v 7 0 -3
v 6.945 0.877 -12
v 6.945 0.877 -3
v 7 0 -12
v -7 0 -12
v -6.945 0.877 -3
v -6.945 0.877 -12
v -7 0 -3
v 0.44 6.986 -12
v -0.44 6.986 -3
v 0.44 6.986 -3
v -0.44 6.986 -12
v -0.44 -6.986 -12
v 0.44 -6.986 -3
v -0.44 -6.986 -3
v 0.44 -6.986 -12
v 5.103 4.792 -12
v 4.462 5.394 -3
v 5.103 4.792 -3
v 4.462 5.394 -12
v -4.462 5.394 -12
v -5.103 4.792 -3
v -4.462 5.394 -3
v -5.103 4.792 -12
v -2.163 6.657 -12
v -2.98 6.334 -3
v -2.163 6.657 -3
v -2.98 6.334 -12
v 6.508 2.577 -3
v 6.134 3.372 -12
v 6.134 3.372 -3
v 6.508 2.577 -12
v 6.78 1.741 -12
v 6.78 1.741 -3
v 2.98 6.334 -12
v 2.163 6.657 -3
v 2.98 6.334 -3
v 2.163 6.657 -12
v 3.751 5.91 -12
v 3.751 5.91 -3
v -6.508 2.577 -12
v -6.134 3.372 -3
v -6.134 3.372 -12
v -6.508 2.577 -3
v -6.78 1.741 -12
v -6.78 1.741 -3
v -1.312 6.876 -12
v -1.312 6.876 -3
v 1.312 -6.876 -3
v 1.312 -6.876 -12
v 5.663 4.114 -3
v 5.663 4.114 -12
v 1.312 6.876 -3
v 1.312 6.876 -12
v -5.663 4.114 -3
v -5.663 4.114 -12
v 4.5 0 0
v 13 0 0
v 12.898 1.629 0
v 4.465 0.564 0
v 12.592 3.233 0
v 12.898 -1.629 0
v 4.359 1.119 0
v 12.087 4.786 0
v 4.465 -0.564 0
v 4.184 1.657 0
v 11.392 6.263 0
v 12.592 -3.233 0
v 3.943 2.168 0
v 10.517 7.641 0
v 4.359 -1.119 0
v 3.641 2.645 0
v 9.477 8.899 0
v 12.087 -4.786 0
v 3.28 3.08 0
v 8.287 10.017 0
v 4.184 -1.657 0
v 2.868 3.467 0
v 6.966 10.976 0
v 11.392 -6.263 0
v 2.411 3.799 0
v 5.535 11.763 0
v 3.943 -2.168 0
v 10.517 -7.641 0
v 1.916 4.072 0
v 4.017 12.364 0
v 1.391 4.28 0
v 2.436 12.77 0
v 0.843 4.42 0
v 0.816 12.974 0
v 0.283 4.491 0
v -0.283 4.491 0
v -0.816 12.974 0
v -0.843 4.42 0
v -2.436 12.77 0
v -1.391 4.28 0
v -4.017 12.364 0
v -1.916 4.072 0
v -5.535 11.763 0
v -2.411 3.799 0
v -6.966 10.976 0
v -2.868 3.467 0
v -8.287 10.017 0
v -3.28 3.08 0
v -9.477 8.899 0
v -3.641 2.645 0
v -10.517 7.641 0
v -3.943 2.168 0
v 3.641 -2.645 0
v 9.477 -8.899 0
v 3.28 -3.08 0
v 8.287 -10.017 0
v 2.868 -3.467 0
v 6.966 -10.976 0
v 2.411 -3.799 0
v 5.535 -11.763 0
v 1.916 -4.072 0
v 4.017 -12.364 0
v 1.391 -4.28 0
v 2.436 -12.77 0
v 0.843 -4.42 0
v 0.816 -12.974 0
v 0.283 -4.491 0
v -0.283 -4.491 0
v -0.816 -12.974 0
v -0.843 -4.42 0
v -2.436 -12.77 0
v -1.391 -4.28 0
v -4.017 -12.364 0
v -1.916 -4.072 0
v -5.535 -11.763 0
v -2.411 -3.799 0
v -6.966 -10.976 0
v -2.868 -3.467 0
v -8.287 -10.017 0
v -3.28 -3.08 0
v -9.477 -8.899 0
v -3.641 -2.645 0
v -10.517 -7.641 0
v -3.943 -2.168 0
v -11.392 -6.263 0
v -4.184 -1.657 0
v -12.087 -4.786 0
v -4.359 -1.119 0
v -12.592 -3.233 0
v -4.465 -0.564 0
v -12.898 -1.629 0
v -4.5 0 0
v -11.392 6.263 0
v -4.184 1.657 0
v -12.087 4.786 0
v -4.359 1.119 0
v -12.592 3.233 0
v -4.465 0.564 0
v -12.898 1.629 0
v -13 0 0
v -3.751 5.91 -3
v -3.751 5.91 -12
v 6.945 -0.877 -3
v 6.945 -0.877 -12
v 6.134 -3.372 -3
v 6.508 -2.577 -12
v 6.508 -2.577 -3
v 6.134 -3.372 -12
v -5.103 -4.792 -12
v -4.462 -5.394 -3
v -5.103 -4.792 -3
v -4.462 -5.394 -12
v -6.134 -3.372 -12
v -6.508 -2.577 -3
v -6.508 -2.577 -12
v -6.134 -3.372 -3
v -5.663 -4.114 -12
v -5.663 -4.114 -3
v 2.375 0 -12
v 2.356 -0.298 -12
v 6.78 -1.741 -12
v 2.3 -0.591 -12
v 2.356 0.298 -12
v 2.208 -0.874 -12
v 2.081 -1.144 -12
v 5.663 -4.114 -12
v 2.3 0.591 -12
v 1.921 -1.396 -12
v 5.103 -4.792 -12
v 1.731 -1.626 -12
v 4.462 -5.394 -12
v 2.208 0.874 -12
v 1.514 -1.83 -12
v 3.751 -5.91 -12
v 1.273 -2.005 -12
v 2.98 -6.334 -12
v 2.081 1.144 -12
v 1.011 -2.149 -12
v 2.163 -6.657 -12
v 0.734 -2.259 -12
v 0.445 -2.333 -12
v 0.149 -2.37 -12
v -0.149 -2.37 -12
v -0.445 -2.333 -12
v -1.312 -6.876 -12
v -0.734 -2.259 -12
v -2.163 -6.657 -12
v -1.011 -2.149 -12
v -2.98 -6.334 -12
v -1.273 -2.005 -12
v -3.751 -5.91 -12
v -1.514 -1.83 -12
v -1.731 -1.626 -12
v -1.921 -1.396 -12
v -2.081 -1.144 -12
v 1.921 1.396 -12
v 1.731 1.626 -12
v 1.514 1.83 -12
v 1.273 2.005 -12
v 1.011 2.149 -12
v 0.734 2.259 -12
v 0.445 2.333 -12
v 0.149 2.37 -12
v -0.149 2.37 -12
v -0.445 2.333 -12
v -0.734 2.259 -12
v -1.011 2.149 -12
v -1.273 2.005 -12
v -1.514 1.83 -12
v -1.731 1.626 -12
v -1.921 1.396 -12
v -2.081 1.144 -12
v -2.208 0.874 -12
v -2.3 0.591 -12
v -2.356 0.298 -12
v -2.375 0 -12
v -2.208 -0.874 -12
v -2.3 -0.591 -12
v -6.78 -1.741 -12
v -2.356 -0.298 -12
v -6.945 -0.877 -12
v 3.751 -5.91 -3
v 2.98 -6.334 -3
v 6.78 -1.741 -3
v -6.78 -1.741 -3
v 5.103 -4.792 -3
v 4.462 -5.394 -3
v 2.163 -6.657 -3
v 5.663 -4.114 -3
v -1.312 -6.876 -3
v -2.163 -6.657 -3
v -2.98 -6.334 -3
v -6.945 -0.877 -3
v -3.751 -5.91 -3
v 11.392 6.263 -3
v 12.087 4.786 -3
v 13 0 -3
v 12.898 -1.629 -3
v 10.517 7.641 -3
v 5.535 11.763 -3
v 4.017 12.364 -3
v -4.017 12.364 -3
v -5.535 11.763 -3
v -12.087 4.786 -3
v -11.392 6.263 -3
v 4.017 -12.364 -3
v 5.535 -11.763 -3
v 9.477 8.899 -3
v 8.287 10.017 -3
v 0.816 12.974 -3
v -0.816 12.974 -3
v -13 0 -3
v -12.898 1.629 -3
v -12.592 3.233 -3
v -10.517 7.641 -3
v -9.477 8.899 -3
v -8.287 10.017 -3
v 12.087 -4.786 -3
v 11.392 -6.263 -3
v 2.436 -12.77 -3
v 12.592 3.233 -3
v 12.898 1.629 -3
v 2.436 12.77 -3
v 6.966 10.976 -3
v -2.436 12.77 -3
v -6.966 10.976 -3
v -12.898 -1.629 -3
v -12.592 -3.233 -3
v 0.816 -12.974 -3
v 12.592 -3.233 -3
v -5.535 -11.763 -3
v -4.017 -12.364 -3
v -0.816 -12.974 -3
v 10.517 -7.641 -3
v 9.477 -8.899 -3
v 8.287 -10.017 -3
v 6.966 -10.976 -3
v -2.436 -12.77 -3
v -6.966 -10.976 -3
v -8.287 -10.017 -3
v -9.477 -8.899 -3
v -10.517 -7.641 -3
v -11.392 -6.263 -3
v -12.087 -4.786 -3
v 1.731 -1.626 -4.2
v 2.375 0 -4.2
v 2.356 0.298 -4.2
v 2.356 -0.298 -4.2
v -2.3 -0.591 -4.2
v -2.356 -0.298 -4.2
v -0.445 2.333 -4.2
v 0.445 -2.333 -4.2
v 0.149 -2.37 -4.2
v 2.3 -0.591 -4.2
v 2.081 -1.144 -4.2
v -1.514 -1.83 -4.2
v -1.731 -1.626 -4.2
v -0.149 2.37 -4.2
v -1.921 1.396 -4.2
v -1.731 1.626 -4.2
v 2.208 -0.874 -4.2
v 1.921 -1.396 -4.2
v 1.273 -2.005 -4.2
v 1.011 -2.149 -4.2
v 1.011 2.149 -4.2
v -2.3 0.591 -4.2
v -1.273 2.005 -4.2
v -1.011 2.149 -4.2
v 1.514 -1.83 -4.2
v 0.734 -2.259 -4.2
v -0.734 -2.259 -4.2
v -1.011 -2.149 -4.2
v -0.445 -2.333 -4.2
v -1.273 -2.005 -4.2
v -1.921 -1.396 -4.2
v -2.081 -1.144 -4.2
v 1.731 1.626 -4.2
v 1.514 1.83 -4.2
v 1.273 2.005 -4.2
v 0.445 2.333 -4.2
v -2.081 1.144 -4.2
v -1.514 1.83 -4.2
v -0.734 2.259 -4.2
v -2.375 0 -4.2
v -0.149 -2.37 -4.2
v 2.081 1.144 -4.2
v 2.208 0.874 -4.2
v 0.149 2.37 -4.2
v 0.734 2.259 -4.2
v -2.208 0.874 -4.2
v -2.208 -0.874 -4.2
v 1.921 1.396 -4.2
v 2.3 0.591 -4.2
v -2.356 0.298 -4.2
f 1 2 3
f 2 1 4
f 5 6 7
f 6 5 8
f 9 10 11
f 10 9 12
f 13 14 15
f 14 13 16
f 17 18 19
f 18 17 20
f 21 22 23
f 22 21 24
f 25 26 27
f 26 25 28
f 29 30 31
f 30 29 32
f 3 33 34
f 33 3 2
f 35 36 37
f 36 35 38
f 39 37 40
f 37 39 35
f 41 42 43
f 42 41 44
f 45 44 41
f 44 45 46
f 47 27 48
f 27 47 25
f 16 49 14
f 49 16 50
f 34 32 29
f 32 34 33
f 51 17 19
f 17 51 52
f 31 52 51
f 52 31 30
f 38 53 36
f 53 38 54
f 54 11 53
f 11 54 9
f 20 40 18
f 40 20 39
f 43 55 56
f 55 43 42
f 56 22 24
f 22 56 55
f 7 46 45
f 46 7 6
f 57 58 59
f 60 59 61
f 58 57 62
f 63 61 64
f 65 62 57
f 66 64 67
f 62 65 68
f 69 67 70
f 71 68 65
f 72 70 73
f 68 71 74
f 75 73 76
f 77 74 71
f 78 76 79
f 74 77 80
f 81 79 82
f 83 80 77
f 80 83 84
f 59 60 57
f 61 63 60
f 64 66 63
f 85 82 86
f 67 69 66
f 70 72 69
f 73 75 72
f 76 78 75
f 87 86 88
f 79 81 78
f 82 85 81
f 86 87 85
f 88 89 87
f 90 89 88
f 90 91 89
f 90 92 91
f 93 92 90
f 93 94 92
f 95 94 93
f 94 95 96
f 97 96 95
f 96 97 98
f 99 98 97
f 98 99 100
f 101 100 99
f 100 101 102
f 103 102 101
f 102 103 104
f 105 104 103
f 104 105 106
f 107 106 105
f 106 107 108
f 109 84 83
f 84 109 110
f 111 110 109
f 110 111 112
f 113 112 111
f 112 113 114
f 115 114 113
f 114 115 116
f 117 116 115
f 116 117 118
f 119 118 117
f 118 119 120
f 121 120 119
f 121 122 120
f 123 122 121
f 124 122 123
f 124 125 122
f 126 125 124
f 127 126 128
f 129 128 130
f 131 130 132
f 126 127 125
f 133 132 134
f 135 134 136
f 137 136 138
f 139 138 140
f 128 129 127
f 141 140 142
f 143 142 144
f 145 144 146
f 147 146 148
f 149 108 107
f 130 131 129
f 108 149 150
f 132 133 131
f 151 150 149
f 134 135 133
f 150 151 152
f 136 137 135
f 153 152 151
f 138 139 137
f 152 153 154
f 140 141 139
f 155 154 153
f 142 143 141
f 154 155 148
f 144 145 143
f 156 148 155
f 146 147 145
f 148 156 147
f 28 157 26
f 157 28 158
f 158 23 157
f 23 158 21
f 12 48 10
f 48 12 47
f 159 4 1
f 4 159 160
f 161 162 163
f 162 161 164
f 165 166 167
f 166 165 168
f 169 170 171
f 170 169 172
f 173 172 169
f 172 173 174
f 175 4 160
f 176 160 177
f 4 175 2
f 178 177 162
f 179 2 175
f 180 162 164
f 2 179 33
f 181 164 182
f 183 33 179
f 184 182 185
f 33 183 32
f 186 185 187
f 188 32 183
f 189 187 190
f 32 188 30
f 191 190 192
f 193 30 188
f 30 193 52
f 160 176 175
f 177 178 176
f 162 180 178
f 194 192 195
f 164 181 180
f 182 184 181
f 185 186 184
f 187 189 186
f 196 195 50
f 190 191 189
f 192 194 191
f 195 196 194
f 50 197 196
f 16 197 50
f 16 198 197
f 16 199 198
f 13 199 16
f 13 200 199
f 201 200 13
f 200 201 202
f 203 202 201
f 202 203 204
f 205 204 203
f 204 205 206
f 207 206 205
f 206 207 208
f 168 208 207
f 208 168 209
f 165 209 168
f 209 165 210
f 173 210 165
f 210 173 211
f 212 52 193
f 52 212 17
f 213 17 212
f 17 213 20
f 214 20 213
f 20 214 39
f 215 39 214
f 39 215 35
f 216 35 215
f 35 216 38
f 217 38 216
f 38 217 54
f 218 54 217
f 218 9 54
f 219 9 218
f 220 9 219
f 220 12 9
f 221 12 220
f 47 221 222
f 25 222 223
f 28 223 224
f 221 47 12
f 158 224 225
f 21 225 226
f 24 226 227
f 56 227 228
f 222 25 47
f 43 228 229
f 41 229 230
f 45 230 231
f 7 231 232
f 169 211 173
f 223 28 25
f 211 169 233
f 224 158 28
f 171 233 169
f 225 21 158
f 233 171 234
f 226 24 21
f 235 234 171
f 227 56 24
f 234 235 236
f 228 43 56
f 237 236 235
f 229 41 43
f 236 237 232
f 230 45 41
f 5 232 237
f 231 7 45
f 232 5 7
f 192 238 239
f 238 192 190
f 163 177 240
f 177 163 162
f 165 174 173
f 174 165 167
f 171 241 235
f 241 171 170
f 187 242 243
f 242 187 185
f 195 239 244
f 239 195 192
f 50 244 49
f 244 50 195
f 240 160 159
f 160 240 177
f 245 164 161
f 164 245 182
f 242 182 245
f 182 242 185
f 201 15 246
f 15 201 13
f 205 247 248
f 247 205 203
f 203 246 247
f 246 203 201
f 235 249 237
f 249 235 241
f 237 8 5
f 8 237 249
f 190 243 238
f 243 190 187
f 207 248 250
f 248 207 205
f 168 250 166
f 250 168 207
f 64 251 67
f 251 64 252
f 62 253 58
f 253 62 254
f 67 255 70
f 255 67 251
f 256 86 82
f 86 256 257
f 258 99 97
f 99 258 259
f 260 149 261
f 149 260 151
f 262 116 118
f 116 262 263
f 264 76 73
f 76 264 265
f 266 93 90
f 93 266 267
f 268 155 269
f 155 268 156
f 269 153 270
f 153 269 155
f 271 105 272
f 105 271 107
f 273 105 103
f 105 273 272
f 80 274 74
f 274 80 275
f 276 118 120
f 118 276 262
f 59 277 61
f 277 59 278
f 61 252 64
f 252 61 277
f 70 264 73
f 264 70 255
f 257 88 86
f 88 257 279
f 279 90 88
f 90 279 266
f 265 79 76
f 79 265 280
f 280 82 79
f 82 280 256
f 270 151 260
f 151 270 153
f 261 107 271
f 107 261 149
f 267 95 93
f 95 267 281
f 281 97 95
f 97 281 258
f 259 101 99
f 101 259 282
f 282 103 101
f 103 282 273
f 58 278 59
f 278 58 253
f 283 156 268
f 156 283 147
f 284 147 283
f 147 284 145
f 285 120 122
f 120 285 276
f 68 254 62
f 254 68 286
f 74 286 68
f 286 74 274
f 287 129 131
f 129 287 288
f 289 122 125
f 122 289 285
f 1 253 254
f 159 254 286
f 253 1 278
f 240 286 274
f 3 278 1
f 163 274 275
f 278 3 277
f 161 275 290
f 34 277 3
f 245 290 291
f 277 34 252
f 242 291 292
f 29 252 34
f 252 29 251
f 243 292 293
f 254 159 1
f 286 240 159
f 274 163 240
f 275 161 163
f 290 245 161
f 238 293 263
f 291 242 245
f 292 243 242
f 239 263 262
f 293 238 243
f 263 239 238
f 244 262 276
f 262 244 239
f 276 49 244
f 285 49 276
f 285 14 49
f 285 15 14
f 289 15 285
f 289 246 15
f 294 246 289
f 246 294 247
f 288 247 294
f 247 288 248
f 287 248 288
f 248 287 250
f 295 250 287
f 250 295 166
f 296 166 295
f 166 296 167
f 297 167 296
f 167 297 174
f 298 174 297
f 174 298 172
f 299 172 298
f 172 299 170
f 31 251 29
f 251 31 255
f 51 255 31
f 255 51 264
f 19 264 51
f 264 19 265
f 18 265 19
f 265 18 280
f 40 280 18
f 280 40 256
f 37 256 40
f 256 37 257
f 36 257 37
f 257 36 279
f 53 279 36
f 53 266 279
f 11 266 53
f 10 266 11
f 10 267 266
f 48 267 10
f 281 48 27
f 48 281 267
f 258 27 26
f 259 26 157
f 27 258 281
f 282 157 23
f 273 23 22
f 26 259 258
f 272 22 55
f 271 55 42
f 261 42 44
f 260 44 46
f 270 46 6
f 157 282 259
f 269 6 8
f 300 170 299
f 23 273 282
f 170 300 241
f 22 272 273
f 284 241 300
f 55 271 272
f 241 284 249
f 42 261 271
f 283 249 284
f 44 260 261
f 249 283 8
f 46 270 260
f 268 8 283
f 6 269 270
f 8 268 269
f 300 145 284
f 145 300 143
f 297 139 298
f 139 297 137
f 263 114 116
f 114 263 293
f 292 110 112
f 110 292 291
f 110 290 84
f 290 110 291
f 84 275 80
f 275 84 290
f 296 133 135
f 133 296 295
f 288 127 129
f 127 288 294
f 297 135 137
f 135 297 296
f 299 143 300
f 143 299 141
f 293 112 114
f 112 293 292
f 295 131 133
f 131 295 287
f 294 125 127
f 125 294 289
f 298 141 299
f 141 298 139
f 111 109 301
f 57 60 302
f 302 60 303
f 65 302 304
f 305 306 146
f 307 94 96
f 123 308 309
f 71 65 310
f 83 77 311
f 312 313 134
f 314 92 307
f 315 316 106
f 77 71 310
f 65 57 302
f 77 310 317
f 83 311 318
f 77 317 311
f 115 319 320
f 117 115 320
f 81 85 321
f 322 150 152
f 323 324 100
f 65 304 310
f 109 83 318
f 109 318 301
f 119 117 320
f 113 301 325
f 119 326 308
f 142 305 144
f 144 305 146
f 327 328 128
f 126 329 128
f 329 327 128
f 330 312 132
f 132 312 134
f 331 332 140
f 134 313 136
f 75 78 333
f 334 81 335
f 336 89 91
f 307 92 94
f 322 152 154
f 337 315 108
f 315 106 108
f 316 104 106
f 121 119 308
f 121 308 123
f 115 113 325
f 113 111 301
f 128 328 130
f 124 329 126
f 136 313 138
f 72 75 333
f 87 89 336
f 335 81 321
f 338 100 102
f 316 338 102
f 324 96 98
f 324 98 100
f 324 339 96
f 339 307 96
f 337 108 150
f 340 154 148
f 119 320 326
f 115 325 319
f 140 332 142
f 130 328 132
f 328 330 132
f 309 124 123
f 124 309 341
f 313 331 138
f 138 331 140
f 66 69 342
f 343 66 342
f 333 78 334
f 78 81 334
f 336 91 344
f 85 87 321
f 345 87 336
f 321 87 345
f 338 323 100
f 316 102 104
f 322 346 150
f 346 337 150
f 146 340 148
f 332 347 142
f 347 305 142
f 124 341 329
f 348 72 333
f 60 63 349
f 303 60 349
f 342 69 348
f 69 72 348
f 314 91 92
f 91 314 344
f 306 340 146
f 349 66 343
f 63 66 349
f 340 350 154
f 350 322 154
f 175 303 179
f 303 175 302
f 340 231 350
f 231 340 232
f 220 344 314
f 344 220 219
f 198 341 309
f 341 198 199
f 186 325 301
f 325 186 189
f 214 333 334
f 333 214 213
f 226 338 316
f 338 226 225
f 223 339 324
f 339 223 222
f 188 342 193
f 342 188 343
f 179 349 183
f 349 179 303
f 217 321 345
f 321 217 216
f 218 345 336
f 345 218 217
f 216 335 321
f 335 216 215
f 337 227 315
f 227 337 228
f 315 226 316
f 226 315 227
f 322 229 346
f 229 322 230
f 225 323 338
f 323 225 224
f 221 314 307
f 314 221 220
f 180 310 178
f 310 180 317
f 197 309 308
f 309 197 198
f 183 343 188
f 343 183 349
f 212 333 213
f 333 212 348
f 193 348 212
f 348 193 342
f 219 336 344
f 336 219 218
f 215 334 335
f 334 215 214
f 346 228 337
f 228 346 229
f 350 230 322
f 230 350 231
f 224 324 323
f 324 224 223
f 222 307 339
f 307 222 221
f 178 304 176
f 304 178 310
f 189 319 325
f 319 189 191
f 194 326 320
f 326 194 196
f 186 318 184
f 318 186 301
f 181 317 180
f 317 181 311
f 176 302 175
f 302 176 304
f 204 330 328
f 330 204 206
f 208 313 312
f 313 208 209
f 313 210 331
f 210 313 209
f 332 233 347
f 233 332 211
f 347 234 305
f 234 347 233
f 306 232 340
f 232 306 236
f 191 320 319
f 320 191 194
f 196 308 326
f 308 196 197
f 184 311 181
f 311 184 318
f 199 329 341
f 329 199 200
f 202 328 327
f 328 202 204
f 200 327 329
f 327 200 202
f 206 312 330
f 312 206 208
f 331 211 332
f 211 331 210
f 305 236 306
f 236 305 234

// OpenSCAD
$fn = 50;


difference() {
	union() {
		translate(v = [0, 0, -12.0000000000]) {
			cylinder(h = 12, r = 7.0000000000);
		}
		translate(v = [0, 0, -3.0000000000]) {
			cylinder(h = 3, r = 13.0000000000);
		}
	}
	union() {
		translate(v = [0, 0, 0]) {
			rotate(a = [0, 0, 0]) {
				difference() {
					union() {
						#translate(v = [0, 0, -12.0000000000]) {
							cylinder(h = 12, r = 2.2500000000);
						}
						#translate(v = [0, 0, -4.2000000000]) {
							cylinder(h = 4.2000000000, r = 7.0000000000, r1 = 2.3750000000, r2 = 4.5000000000);
						}
						#translate(v = [0, 0, -12.0000000000]) {
							cylinder(h = 12, r = 2.3750000000);
						}
						#translate(v = [0, 0, -12.0000000000]) {
							cylinder(h = 12, r = 2.2500000000);
						}
					}
					union();
				}
			}
		}
	}
}
